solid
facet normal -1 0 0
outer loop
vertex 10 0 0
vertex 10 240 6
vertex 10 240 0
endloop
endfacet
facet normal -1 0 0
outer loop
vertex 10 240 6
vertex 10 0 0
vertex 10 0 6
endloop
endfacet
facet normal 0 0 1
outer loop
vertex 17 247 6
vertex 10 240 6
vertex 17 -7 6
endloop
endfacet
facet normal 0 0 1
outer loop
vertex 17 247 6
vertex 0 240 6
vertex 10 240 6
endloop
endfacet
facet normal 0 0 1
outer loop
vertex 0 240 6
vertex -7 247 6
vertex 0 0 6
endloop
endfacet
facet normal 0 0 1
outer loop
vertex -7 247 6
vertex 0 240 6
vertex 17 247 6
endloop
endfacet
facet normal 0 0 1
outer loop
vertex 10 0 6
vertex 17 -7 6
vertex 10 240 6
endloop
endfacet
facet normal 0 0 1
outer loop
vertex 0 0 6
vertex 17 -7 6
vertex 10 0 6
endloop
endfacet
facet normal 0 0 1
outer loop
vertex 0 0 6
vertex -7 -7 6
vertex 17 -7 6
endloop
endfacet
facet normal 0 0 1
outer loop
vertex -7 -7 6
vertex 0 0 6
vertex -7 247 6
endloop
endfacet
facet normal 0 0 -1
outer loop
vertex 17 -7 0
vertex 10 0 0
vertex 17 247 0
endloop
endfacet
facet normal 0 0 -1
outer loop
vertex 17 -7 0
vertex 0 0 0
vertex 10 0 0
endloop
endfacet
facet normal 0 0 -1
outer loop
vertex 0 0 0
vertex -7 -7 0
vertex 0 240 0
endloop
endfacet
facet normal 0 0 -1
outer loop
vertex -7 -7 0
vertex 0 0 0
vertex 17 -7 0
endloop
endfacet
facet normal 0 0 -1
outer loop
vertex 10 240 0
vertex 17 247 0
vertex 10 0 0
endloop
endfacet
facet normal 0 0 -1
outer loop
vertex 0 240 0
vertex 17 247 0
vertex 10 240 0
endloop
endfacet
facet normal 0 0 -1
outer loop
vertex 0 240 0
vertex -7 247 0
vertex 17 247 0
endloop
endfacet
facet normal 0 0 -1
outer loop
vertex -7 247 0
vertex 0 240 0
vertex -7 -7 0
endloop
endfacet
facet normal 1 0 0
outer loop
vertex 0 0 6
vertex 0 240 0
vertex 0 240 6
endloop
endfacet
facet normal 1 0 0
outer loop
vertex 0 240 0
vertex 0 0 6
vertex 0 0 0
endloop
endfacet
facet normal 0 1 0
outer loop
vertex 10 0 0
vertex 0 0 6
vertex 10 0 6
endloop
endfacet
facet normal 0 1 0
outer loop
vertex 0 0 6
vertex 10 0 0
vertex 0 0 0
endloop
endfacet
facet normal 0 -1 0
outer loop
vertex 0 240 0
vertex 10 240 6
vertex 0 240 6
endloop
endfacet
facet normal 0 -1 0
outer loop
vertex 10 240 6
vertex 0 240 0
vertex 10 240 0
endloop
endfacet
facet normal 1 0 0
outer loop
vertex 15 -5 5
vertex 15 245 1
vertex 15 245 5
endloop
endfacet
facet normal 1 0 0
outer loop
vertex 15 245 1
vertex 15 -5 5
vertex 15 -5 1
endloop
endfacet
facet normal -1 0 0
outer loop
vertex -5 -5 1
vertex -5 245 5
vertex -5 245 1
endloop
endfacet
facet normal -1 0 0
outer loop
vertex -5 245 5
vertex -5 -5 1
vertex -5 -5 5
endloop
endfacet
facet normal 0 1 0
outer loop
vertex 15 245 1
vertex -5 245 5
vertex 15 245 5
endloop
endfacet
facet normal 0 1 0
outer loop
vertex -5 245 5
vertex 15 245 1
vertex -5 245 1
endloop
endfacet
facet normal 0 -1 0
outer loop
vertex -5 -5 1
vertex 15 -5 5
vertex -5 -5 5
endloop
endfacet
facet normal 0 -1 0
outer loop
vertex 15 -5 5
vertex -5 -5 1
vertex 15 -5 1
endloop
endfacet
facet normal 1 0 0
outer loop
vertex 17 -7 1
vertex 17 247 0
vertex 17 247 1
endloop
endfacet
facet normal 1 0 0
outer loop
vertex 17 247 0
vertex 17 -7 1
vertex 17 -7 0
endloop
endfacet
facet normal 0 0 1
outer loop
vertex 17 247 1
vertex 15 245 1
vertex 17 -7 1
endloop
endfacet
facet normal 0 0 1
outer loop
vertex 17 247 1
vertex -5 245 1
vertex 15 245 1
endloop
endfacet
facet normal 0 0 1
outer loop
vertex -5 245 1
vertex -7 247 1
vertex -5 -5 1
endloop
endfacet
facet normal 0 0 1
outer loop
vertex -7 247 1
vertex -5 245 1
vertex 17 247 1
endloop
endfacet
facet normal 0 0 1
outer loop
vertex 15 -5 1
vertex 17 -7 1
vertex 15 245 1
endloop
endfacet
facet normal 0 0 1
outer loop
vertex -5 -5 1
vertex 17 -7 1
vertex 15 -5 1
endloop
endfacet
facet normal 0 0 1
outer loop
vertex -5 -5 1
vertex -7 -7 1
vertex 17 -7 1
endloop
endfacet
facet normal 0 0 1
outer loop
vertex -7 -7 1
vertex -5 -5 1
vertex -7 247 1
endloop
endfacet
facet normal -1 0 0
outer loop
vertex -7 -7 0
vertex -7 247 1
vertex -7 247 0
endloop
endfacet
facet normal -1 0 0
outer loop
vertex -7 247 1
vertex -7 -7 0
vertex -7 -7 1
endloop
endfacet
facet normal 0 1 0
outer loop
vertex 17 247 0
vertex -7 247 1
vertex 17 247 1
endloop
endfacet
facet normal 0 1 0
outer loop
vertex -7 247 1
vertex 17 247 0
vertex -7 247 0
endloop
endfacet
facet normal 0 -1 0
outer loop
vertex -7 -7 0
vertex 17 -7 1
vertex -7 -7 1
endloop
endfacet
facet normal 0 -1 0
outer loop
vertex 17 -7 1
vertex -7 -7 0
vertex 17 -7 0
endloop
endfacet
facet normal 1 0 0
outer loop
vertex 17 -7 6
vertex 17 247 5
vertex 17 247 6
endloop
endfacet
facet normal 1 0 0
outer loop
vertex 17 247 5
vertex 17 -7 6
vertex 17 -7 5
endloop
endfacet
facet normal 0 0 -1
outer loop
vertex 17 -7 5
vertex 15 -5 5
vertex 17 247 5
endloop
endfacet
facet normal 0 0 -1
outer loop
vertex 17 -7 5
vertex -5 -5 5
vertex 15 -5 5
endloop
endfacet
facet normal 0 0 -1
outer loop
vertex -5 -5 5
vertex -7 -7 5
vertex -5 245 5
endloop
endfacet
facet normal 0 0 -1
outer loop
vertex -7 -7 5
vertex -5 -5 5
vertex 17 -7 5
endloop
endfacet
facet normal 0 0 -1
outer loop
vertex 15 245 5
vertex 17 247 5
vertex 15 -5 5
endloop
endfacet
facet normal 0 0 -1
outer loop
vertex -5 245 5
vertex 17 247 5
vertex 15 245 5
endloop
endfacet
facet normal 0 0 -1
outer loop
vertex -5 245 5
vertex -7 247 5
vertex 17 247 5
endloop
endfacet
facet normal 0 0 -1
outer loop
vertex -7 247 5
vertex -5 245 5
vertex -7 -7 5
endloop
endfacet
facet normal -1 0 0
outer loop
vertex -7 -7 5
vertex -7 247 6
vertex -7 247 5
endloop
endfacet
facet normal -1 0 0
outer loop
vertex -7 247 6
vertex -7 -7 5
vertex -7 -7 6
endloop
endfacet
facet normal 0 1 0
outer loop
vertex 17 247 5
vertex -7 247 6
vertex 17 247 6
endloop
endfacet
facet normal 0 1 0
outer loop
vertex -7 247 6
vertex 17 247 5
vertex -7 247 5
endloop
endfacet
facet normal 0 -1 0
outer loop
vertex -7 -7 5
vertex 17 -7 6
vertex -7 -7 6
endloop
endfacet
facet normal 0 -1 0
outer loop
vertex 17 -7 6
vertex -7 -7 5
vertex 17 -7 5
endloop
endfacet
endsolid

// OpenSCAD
magX = 10;
magY = 60;
magZ = 6;
nMags = 4;
bThick = 5;

module positives(){
    translate([-bThick,-bThick,0]) cube([magX+2*bThick,magY*4+2*bThick,magZ]);
    translate([-bThick-2,-bThick-2,0]) cube([magX+2*bThick+4,magY*4+2*bThick+4,1]);
    translate([-bThick-2,-bThick-2,magZ-1]) cube([magX+2*bThick+4,magY*4+2*bThick+4,1]);
}


module negatives(){
for (i = [0 : 1 : (nMags-1)]) {
    translate([0,i*magY,0]) cube([magX,magY,magZ]);
}
}

difference(){
    positives();
    negatives();
}
